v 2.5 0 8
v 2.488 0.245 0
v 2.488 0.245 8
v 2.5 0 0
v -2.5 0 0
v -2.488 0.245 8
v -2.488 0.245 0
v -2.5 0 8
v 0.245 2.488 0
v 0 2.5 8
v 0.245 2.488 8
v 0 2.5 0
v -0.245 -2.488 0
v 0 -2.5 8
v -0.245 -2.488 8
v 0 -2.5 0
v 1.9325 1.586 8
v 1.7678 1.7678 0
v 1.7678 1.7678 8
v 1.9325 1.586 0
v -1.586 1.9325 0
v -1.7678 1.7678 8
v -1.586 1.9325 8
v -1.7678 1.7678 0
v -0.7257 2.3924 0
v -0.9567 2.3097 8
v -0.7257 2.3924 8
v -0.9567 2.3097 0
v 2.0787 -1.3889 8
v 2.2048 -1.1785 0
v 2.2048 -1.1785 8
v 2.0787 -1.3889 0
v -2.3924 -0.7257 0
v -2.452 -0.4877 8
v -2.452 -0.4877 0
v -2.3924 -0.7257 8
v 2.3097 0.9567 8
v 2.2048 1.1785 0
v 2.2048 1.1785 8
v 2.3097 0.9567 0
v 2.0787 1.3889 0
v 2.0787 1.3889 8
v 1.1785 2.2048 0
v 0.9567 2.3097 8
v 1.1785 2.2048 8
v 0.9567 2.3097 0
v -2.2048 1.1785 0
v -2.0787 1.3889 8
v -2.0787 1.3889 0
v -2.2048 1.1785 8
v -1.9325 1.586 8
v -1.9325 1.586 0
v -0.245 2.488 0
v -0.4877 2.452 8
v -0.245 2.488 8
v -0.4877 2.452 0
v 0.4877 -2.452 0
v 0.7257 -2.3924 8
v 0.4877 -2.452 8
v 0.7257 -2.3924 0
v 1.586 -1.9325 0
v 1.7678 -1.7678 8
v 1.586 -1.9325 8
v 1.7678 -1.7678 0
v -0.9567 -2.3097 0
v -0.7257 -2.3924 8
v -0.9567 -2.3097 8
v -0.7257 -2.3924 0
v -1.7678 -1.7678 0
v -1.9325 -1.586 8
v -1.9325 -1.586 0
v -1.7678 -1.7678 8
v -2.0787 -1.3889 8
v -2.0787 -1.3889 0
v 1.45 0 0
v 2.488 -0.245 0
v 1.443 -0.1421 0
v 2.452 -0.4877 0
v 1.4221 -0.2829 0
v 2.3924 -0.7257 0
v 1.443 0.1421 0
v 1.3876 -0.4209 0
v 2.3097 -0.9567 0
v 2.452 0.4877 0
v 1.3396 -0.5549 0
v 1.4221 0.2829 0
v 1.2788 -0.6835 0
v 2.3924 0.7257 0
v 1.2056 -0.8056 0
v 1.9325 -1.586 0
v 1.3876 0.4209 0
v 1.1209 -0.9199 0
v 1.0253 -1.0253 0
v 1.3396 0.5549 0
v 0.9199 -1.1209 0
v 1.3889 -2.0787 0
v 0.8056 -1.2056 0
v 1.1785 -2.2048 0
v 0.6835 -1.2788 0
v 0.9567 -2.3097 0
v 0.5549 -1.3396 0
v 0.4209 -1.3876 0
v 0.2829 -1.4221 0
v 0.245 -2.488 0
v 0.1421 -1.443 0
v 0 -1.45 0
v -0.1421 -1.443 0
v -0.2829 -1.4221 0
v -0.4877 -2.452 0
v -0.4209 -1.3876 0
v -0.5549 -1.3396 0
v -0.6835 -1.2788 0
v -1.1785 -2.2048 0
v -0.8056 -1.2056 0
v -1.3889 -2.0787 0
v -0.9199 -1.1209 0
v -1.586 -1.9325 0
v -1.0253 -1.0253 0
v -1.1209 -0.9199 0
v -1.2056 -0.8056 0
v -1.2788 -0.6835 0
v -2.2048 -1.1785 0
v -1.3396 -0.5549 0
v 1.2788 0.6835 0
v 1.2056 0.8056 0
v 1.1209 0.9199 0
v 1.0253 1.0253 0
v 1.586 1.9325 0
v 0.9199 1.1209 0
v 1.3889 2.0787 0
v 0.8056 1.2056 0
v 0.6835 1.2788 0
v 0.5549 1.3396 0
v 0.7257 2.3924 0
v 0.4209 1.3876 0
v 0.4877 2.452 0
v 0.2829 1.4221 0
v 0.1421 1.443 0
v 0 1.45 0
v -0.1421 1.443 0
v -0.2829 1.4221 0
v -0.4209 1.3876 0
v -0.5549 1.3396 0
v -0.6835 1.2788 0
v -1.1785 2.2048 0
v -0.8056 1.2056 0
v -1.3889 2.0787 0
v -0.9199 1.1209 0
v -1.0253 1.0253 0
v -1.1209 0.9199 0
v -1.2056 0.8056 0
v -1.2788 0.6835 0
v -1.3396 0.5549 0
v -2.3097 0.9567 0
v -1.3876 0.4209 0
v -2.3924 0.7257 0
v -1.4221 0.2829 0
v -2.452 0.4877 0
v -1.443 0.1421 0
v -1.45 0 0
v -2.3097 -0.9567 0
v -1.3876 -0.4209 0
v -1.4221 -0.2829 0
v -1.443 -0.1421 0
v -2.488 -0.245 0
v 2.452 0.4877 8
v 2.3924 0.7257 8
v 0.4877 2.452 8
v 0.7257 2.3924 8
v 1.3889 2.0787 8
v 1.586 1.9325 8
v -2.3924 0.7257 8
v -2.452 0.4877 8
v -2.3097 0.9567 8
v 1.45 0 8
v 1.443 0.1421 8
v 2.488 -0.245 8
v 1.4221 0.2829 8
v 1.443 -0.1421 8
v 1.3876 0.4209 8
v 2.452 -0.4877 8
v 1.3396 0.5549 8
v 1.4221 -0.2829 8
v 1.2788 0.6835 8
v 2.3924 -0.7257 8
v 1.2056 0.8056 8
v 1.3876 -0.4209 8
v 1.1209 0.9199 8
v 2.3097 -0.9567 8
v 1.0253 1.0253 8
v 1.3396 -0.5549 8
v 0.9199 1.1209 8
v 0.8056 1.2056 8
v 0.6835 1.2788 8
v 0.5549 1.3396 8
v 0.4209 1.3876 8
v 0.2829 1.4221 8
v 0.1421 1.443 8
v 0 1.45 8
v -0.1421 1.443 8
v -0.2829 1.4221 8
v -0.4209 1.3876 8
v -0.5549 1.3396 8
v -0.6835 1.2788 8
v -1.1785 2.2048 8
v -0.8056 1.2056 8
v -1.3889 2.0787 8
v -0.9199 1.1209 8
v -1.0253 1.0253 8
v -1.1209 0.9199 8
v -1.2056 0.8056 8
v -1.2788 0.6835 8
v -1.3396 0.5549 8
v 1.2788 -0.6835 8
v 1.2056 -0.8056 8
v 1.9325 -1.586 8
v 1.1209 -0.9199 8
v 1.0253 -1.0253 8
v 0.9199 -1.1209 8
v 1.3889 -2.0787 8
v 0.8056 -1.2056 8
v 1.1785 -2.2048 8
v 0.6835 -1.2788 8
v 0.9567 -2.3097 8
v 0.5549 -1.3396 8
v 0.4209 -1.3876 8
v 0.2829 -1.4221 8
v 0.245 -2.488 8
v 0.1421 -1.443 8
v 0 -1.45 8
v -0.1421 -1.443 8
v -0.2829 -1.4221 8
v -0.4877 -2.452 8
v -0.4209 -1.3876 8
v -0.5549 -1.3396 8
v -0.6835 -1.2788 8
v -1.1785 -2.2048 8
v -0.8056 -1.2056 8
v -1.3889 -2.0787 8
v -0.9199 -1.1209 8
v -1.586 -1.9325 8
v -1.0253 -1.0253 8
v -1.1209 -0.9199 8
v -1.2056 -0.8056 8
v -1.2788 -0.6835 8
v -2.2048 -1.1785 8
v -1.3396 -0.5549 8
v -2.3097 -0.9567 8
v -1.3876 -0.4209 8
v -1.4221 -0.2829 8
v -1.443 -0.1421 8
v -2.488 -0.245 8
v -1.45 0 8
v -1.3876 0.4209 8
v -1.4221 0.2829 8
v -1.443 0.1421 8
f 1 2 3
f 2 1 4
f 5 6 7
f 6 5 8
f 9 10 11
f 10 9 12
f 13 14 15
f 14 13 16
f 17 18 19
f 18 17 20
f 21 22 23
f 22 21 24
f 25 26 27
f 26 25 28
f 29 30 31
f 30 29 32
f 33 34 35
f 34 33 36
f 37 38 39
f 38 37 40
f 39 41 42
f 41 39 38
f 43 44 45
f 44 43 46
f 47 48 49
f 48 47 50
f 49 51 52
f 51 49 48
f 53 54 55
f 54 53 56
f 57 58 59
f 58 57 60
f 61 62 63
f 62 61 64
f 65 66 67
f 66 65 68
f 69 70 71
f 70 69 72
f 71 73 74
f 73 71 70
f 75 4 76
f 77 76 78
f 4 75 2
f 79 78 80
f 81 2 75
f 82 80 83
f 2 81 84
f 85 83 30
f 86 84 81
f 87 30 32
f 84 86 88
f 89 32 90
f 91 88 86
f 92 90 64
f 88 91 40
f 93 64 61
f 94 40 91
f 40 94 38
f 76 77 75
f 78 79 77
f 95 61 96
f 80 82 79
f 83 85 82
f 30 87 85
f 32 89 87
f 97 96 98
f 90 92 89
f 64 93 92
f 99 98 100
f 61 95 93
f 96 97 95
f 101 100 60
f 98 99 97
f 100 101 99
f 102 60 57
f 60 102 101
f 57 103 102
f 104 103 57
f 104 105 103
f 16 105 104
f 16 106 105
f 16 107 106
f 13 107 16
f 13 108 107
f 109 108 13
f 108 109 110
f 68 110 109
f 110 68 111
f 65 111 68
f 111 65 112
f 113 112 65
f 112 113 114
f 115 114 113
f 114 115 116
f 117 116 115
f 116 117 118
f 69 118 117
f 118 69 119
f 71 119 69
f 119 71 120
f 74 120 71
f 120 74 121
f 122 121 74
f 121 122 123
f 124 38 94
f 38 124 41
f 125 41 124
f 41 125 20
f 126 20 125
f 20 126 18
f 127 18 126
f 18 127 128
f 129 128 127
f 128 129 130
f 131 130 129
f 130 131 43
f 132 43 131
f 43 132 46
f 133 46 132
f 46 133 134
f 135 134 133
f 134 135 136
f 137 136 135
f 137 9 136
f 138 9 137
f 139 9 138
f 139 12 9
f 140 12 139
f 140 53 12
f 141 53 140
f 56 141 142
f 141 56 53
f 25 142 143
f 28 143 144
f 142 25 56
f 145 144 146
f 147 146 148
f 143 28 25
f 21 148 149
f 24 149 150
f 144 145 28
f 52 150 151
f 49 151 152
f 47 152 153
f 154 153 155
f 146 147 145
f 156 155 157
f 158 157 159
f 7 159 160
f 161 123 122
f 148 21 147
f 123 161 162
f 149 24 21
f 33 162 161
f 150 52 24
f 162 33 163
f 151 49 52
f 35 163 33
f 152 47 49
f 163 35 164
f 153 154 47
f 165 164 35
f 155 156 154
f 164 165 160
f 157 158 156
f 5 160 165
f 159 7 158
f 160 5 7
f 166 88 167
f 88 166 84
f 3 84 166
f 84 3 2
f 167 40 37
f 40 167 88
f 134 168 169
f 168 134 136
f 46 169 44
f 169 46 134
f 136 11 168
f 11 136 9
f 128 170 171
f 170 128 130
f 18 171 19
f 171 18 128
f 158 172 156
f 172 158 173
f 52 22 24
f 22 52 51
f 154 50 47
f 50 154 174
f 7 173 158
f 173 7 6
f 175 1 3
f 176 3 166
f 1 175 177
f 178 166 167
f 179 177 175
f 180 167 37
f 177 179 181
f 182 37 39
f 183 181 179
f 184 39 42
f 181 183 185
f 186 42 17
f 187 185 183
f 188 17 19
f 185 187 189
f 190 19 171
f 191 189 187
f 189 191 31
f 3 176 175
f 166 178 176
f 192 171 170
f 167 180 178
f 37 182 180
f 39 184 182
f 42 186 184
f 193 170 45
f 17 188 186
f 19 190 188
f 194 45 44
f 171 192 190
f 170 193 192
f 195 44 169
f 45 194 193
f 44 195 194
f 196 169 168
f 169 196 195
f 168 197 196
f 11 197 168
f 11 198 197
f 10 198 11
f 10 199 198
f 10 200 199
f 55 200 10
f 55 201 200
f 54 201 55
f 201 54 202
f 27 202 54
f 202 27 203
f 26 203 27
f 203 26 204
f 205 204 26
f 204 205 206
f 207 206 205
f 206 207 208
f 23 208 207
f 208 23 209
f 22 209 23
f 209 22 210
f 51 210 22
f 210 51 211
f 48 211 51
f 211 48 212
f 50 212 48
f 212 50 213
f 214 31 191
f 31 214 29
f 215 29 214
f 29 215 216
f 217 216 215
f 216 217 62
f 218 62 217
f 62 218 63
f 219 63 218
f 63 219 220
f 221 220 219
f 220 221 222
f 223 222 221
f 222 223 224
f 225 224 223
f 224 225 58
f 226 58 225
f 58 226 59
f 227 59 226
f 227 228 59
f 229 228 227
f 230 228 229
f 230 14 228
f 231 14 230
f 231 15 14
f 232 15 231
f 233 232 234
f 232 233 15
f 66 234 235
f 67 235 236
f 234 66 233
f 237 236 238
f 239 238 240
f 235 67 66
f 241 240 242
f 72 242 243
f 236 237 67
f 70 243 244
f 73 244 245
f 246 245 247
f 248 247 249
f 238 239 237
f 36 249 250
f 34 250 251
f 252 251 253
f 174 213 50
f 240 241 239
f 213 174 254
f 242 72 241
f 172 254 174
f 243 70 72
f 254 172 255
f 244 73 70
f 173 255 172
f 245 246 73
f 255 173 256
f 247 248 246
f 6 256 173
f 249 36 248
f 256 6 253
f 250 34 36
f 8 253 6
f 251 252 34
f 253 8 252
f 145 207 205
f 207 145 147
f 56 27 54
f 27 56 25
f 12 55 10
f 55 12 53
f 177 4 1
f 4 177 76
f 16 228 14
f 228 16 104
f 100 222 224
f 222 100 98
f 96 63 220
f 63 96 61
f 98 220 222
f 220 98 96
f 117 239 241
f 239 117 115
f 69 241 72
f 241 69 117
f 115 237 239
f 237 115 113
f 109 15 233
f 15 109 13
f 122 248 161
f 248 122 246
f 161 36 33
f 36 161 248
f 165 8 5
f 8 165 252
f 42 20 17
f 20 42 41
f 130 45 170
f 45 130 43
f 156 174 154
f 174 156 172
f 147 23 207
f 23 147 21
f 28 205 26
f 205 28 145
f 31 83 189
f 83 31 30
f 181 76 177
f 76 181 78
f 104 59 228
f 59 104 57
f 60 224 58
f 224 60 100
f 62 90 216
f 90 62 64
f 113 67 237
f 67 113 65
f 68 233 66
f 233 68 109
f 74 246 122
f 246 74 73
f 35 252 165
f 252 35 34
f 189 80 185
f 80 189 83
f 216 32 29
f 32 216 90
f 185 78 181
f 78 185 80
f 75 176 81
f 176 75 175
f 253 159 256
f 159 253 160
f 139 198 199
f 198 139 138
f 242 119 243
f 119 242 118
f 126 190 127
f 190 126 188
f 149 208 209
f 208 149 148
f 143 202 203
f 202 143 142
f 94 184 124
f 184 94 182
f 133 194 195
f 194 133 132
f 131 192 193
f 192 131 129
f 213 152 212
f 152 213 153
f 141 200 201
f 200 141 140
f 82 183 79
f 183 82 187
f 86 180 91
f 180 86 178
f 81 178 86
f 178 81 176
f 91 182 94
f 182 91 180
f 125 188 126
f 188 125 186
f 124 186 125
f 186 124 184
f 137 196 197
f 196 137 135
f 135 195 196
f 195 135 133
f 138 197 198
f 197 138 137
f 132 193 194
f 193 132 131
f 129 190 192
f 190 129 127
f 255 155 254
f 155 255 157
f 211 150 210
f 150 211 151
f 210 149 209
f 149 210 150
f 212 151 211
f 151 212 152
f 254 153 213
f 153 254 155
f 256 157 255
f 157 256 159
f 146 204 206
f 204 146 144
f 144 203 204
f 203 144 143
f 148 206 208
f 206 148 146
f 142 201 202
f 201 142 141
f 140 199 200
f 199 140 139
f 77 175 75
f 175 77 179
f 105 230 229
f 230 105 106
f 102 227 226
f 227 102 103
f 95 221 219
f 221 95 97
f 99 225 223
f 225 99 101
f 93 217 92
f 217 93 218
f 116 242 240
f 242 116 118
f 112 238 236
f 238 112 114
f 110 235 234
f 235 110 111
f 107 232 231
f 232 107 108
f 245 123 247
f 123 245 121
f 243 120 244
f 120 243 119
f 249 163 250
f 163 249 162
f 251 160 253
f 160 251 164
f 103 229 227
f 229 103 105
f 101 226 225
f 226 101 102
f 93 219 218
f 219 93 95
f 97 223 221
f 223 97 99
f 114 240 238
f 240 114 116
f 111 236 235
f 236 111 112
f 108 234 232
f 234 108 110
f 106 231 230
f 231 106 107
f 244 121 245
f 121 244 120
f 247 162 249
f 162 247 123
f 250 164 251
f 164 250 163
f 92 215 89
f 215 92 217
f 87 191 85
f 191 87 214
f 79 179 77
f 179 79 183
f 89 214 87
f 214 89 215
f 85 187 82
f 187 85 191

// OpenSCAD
difference() {
    cylinder(d=5,h=8,$fn=64);

    translate([0,0,-1]) {
        cylinder(d=2.9,h=10,$fn=64);
    }
}
